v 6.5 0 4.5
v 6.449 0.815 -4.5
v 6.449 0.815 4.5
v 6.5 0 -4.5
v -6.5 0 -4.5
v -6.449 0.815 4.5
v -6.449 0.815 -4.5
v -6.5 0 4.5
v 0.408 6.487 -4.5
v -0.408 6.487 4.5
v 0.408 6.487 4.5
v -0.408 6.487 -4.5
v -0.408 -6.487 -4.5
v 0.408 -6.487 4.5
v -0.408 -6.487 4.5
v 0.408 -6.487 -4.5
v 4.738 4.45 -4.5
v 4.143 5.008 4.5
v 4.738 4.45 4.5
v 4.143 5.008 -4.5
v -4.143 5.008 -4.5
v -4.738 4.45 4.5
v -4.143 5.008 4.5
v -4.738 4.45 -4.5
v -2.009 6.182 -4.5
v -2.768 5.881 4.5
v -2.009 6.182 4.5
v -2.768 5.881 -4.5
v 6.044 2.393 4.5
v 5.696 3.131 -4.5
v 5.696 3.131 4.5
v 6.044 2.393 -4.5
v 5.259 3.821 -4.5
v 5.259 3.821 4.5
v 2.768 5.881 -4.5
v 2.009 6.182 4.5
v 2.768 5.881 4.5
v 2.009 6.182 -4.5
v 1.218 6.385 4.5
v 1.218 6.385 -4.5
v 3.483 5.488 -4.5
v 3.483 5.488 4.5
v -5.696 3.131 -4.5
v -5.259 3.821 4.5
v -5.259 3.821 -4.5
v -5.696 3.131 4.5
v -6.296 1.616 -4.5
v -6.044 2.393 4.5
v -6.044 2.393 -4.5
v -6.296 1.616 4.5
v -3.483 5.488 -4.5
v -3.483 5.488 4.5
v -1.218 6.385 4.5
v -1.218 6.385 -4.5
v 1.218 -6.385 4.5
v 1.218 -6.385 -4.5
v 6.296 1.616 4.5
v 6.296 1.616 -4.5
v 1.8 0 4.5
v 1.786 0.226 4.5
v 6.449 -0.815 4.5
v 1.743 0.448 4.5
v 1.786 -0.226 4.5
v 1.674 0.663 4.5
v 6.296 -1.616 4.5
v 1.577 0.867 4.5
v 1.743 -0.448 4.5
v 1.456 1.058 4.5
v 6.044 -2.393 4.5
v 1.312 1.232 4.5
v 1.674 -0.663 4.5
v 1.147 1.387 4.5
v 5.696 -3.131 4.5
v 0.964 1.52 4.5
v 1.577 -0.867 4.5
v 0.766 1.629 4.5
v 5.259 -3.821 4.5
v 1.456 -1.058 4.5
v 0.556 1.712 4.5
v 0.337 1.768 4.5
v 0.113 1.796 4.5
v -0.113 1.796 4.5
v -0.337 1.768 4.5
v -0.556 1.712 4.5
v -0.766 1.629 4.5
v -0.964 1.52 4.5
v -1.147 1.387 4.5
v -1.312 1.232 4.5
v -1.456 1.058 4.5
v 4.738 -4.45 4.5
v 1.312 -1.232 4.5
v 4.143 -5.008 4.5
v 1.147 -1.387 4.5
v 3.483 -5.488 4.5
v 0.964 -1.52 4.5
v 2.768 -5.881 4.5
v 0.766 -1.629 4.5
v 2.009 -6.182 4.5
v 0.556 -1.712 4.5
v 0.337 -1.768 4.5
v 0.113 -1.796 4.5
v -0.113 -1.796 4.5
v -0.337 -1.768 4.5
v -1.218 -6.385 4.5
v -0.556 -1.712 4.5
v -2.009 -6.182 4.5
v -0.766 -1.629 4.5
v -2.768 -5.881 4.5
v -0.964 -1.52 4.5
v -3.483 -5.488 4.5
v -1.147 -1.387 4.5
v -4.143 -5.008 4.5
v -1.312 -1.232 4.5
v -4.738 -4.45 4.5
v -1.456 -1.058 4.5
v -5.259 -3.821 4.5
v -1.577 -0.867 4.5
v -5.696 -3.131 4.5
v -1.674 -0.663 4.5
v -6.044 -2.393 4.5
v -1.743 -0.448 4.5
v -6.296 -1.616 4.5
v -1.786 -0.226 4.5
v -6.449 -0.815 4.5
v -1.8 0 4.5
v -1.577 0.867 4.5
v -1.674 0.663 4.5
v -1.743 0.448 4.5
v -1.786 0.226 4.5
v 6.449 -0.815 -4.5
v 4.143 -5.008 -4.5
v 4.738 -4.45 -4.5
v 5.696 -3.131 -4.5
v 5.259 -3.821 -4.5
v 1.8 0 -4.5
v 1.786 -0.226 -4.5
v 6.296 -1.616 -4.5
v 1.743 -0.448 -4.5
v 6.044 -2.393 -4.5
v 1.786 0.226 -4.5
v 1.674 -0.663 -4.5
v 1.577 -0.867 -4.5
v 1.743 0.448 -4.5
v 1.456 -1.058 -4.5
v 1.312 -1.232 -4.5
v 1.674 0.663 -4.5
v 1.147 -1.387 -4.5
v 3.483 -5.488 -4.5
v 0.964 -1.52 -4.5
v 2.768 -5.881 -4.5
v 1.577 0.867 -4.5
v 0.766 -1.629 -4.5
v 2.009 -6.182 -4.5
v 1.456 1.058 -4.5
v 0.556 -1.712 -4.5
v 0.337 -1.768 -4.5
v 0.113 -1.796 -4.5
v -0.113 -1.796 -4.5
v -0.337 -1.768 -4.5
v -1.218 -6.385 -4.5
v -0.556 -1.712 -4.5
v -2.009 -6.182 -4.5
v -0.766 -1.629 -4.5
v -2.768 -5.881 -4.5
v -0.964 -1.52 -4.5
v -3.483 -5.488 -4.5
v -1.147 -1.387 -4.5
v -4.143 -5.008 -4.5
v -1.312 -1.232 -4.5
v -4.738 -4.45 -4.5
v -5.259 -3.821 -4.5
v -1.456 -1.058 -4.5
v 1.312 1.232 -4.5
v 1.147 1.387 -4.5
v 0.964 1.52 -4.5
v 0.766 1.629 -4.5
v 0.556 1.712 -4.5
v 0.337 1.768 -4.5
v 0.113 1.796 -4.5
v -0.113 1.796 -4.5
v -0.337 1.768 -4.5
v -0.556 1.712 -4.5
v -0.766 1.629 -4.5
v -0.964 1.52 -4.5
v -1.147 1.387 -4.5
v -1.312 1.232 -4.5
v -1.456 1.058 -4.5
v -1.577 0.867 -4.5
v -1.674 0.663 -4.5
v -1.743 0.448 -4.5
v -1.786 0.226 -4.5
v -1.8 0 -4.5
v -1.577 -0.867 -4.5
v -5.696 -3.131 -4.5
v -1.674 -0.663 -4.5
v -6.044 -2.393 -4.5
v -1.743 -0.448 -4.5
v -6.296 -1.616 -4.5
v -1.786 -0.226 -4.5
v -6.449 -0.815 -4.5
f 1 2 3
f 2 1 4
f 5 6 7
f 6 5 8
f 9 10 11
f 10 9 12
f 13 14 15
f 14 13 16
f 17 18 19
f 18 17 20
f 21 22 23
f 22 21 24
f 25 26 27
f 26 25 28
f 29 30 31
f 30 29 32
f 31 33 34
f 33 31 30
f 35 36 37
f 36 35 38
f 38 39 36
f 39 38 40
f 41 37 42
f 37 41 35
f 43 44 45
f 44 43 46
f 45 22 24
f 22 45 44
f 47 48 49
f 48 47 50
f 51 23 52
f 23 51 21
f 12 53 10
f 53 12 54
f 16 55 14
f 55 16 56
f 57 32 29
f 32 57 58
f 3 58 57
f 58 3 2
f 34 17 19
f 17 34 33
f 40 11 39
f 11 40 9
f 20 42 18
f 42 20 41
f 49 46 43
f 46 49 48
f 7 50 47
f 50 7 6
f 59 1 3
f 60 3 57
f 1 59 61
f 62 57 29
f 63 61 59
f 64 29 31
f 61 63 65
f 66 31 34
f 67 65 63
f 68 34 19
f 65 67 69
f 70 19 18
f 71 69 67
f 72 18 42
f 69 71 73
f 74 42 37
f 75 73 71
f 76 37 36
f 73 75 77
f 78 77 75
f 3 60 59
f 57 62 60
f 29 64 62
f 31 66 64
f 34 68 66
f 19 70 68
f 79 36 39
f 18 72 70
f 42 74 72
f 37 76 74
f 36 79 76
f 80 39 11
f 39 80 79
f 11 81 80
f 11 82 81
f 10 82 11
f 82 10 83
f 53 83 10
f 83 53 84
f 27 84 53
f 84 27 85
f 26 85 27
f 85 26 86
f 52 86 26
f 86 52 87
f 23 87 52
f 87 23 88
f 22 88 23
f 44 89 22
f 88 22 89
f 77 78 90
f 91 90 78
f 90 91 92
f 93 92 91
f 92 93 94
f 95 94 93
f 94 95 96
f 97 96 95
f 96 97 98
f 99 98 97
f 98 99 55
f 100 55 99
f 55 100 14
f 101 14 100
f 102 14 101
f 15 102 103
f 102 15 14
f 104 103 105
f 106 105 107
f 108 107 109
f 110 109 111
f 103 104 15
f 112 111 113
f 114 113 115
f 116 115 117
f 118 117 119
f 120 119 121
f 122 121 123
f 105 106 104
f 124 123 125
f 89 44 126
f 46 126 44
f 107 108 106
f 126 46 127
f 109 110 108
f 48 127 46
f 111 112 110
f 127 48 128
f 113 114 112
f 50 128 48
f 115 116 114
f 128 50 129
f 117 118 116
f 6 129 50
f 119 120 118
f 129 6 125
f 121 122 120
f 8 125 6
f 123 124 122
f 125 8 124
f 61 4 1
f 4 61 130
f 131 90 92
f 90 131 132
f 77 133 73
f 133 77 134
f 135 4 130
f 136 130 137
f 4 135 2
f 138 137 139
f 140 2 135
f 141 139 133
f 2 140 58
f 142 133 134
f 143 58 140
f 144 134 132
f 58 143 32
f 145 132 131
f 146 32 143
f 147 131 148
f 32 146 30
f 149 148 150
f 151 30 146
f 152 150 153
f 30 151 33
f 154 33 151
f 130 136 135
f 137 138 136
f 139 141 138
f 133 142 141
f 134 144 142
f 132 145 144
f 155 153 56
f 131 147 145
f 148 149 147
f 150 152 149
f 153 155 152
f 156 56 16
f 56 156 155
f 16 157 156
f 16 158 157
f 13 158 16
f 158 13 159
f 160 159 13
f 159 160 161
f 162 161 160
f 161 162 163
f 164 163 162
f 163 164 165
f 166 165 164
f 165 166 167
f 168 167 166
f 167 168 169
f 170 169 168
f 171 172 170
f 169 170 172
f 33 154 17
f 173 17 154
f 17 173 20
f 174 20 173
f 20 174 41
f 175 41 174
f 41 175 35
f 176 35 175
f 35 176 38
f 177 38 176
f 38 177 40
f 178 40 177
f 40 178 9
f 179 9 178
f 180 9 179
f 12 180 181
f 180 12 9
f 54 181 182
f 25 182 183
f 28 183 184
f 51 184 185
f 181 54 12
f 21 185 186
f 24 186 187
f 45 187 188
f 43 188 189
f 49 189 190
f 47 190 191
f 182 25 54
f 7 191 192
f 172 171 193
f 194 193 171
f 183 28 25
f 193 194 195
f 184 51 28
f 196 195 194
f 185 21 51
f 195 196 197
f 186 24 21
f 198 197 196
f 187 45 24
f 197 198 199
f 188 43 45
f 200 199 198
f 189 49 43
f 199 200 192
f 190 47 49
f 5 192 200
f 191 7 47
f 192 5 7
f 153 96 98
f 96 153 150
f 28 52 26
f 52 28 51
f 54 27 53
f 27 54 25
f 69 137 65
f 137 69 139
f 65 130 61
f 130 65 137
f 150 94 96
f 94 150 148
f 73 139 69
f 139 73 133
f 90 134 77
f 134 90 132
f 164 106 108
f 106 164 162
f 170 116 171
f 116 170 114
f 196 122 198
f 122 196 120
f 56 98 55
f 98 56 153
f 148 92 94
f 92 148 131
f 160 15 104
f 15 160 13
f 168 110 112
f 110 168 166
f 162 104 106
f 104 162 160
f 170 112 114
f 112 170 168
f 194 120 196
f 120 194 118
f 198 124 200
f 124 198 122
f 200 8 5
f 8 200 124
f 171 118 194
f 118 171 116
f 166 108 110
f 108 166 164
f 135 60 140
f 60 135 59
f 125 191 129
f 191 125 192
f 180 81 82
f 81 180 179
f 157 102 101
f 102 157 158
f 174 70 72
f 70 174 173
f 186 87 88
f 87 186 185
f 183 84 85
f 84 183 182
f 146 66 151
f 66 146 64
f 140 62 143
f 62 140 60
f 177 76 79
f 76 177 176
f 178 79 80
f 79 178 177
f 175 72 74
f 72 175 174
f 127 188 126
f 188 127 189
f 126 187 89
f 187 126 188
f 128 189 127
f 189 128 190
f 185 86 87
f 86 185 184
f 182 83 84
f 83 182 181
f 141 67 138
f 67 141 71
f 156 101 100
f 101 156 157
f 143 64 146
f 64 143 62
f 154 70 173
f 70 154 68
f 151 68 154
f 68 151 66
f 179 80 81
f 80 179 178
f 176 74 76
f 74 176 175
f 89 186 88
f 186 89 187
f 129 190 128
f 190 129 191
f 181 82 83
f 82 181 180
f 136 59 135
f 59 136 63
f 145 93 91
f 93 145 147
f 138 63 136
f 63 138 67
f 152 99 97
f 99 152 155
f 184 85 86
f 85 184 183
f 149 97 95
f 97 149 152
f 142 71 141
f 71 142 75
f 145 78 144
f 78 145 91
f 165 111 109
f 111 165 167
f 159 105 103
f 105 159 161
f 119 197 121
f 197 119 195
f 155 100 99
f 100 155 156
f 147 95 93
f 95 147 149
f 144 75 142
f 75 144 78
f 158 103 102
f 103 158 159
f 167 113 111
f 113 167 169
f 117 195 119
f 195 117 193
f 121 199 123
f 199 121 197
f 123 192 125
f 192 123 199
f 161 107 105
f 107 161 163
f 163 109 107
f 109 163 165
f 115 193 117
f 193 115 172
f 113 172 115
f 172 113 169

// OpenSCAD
$fn = 50;


difference() {
	union() {
		translate(v = [0, 0, -4.5000000000]) {
			cylinder(h = 9, r = 6.5000000000);
		}
	}
	union() {
		translate(v = [0, 0, -100.0000000000]) {
			cylinder(h = 200, r = 1.8000000000);
		}
	}
}
